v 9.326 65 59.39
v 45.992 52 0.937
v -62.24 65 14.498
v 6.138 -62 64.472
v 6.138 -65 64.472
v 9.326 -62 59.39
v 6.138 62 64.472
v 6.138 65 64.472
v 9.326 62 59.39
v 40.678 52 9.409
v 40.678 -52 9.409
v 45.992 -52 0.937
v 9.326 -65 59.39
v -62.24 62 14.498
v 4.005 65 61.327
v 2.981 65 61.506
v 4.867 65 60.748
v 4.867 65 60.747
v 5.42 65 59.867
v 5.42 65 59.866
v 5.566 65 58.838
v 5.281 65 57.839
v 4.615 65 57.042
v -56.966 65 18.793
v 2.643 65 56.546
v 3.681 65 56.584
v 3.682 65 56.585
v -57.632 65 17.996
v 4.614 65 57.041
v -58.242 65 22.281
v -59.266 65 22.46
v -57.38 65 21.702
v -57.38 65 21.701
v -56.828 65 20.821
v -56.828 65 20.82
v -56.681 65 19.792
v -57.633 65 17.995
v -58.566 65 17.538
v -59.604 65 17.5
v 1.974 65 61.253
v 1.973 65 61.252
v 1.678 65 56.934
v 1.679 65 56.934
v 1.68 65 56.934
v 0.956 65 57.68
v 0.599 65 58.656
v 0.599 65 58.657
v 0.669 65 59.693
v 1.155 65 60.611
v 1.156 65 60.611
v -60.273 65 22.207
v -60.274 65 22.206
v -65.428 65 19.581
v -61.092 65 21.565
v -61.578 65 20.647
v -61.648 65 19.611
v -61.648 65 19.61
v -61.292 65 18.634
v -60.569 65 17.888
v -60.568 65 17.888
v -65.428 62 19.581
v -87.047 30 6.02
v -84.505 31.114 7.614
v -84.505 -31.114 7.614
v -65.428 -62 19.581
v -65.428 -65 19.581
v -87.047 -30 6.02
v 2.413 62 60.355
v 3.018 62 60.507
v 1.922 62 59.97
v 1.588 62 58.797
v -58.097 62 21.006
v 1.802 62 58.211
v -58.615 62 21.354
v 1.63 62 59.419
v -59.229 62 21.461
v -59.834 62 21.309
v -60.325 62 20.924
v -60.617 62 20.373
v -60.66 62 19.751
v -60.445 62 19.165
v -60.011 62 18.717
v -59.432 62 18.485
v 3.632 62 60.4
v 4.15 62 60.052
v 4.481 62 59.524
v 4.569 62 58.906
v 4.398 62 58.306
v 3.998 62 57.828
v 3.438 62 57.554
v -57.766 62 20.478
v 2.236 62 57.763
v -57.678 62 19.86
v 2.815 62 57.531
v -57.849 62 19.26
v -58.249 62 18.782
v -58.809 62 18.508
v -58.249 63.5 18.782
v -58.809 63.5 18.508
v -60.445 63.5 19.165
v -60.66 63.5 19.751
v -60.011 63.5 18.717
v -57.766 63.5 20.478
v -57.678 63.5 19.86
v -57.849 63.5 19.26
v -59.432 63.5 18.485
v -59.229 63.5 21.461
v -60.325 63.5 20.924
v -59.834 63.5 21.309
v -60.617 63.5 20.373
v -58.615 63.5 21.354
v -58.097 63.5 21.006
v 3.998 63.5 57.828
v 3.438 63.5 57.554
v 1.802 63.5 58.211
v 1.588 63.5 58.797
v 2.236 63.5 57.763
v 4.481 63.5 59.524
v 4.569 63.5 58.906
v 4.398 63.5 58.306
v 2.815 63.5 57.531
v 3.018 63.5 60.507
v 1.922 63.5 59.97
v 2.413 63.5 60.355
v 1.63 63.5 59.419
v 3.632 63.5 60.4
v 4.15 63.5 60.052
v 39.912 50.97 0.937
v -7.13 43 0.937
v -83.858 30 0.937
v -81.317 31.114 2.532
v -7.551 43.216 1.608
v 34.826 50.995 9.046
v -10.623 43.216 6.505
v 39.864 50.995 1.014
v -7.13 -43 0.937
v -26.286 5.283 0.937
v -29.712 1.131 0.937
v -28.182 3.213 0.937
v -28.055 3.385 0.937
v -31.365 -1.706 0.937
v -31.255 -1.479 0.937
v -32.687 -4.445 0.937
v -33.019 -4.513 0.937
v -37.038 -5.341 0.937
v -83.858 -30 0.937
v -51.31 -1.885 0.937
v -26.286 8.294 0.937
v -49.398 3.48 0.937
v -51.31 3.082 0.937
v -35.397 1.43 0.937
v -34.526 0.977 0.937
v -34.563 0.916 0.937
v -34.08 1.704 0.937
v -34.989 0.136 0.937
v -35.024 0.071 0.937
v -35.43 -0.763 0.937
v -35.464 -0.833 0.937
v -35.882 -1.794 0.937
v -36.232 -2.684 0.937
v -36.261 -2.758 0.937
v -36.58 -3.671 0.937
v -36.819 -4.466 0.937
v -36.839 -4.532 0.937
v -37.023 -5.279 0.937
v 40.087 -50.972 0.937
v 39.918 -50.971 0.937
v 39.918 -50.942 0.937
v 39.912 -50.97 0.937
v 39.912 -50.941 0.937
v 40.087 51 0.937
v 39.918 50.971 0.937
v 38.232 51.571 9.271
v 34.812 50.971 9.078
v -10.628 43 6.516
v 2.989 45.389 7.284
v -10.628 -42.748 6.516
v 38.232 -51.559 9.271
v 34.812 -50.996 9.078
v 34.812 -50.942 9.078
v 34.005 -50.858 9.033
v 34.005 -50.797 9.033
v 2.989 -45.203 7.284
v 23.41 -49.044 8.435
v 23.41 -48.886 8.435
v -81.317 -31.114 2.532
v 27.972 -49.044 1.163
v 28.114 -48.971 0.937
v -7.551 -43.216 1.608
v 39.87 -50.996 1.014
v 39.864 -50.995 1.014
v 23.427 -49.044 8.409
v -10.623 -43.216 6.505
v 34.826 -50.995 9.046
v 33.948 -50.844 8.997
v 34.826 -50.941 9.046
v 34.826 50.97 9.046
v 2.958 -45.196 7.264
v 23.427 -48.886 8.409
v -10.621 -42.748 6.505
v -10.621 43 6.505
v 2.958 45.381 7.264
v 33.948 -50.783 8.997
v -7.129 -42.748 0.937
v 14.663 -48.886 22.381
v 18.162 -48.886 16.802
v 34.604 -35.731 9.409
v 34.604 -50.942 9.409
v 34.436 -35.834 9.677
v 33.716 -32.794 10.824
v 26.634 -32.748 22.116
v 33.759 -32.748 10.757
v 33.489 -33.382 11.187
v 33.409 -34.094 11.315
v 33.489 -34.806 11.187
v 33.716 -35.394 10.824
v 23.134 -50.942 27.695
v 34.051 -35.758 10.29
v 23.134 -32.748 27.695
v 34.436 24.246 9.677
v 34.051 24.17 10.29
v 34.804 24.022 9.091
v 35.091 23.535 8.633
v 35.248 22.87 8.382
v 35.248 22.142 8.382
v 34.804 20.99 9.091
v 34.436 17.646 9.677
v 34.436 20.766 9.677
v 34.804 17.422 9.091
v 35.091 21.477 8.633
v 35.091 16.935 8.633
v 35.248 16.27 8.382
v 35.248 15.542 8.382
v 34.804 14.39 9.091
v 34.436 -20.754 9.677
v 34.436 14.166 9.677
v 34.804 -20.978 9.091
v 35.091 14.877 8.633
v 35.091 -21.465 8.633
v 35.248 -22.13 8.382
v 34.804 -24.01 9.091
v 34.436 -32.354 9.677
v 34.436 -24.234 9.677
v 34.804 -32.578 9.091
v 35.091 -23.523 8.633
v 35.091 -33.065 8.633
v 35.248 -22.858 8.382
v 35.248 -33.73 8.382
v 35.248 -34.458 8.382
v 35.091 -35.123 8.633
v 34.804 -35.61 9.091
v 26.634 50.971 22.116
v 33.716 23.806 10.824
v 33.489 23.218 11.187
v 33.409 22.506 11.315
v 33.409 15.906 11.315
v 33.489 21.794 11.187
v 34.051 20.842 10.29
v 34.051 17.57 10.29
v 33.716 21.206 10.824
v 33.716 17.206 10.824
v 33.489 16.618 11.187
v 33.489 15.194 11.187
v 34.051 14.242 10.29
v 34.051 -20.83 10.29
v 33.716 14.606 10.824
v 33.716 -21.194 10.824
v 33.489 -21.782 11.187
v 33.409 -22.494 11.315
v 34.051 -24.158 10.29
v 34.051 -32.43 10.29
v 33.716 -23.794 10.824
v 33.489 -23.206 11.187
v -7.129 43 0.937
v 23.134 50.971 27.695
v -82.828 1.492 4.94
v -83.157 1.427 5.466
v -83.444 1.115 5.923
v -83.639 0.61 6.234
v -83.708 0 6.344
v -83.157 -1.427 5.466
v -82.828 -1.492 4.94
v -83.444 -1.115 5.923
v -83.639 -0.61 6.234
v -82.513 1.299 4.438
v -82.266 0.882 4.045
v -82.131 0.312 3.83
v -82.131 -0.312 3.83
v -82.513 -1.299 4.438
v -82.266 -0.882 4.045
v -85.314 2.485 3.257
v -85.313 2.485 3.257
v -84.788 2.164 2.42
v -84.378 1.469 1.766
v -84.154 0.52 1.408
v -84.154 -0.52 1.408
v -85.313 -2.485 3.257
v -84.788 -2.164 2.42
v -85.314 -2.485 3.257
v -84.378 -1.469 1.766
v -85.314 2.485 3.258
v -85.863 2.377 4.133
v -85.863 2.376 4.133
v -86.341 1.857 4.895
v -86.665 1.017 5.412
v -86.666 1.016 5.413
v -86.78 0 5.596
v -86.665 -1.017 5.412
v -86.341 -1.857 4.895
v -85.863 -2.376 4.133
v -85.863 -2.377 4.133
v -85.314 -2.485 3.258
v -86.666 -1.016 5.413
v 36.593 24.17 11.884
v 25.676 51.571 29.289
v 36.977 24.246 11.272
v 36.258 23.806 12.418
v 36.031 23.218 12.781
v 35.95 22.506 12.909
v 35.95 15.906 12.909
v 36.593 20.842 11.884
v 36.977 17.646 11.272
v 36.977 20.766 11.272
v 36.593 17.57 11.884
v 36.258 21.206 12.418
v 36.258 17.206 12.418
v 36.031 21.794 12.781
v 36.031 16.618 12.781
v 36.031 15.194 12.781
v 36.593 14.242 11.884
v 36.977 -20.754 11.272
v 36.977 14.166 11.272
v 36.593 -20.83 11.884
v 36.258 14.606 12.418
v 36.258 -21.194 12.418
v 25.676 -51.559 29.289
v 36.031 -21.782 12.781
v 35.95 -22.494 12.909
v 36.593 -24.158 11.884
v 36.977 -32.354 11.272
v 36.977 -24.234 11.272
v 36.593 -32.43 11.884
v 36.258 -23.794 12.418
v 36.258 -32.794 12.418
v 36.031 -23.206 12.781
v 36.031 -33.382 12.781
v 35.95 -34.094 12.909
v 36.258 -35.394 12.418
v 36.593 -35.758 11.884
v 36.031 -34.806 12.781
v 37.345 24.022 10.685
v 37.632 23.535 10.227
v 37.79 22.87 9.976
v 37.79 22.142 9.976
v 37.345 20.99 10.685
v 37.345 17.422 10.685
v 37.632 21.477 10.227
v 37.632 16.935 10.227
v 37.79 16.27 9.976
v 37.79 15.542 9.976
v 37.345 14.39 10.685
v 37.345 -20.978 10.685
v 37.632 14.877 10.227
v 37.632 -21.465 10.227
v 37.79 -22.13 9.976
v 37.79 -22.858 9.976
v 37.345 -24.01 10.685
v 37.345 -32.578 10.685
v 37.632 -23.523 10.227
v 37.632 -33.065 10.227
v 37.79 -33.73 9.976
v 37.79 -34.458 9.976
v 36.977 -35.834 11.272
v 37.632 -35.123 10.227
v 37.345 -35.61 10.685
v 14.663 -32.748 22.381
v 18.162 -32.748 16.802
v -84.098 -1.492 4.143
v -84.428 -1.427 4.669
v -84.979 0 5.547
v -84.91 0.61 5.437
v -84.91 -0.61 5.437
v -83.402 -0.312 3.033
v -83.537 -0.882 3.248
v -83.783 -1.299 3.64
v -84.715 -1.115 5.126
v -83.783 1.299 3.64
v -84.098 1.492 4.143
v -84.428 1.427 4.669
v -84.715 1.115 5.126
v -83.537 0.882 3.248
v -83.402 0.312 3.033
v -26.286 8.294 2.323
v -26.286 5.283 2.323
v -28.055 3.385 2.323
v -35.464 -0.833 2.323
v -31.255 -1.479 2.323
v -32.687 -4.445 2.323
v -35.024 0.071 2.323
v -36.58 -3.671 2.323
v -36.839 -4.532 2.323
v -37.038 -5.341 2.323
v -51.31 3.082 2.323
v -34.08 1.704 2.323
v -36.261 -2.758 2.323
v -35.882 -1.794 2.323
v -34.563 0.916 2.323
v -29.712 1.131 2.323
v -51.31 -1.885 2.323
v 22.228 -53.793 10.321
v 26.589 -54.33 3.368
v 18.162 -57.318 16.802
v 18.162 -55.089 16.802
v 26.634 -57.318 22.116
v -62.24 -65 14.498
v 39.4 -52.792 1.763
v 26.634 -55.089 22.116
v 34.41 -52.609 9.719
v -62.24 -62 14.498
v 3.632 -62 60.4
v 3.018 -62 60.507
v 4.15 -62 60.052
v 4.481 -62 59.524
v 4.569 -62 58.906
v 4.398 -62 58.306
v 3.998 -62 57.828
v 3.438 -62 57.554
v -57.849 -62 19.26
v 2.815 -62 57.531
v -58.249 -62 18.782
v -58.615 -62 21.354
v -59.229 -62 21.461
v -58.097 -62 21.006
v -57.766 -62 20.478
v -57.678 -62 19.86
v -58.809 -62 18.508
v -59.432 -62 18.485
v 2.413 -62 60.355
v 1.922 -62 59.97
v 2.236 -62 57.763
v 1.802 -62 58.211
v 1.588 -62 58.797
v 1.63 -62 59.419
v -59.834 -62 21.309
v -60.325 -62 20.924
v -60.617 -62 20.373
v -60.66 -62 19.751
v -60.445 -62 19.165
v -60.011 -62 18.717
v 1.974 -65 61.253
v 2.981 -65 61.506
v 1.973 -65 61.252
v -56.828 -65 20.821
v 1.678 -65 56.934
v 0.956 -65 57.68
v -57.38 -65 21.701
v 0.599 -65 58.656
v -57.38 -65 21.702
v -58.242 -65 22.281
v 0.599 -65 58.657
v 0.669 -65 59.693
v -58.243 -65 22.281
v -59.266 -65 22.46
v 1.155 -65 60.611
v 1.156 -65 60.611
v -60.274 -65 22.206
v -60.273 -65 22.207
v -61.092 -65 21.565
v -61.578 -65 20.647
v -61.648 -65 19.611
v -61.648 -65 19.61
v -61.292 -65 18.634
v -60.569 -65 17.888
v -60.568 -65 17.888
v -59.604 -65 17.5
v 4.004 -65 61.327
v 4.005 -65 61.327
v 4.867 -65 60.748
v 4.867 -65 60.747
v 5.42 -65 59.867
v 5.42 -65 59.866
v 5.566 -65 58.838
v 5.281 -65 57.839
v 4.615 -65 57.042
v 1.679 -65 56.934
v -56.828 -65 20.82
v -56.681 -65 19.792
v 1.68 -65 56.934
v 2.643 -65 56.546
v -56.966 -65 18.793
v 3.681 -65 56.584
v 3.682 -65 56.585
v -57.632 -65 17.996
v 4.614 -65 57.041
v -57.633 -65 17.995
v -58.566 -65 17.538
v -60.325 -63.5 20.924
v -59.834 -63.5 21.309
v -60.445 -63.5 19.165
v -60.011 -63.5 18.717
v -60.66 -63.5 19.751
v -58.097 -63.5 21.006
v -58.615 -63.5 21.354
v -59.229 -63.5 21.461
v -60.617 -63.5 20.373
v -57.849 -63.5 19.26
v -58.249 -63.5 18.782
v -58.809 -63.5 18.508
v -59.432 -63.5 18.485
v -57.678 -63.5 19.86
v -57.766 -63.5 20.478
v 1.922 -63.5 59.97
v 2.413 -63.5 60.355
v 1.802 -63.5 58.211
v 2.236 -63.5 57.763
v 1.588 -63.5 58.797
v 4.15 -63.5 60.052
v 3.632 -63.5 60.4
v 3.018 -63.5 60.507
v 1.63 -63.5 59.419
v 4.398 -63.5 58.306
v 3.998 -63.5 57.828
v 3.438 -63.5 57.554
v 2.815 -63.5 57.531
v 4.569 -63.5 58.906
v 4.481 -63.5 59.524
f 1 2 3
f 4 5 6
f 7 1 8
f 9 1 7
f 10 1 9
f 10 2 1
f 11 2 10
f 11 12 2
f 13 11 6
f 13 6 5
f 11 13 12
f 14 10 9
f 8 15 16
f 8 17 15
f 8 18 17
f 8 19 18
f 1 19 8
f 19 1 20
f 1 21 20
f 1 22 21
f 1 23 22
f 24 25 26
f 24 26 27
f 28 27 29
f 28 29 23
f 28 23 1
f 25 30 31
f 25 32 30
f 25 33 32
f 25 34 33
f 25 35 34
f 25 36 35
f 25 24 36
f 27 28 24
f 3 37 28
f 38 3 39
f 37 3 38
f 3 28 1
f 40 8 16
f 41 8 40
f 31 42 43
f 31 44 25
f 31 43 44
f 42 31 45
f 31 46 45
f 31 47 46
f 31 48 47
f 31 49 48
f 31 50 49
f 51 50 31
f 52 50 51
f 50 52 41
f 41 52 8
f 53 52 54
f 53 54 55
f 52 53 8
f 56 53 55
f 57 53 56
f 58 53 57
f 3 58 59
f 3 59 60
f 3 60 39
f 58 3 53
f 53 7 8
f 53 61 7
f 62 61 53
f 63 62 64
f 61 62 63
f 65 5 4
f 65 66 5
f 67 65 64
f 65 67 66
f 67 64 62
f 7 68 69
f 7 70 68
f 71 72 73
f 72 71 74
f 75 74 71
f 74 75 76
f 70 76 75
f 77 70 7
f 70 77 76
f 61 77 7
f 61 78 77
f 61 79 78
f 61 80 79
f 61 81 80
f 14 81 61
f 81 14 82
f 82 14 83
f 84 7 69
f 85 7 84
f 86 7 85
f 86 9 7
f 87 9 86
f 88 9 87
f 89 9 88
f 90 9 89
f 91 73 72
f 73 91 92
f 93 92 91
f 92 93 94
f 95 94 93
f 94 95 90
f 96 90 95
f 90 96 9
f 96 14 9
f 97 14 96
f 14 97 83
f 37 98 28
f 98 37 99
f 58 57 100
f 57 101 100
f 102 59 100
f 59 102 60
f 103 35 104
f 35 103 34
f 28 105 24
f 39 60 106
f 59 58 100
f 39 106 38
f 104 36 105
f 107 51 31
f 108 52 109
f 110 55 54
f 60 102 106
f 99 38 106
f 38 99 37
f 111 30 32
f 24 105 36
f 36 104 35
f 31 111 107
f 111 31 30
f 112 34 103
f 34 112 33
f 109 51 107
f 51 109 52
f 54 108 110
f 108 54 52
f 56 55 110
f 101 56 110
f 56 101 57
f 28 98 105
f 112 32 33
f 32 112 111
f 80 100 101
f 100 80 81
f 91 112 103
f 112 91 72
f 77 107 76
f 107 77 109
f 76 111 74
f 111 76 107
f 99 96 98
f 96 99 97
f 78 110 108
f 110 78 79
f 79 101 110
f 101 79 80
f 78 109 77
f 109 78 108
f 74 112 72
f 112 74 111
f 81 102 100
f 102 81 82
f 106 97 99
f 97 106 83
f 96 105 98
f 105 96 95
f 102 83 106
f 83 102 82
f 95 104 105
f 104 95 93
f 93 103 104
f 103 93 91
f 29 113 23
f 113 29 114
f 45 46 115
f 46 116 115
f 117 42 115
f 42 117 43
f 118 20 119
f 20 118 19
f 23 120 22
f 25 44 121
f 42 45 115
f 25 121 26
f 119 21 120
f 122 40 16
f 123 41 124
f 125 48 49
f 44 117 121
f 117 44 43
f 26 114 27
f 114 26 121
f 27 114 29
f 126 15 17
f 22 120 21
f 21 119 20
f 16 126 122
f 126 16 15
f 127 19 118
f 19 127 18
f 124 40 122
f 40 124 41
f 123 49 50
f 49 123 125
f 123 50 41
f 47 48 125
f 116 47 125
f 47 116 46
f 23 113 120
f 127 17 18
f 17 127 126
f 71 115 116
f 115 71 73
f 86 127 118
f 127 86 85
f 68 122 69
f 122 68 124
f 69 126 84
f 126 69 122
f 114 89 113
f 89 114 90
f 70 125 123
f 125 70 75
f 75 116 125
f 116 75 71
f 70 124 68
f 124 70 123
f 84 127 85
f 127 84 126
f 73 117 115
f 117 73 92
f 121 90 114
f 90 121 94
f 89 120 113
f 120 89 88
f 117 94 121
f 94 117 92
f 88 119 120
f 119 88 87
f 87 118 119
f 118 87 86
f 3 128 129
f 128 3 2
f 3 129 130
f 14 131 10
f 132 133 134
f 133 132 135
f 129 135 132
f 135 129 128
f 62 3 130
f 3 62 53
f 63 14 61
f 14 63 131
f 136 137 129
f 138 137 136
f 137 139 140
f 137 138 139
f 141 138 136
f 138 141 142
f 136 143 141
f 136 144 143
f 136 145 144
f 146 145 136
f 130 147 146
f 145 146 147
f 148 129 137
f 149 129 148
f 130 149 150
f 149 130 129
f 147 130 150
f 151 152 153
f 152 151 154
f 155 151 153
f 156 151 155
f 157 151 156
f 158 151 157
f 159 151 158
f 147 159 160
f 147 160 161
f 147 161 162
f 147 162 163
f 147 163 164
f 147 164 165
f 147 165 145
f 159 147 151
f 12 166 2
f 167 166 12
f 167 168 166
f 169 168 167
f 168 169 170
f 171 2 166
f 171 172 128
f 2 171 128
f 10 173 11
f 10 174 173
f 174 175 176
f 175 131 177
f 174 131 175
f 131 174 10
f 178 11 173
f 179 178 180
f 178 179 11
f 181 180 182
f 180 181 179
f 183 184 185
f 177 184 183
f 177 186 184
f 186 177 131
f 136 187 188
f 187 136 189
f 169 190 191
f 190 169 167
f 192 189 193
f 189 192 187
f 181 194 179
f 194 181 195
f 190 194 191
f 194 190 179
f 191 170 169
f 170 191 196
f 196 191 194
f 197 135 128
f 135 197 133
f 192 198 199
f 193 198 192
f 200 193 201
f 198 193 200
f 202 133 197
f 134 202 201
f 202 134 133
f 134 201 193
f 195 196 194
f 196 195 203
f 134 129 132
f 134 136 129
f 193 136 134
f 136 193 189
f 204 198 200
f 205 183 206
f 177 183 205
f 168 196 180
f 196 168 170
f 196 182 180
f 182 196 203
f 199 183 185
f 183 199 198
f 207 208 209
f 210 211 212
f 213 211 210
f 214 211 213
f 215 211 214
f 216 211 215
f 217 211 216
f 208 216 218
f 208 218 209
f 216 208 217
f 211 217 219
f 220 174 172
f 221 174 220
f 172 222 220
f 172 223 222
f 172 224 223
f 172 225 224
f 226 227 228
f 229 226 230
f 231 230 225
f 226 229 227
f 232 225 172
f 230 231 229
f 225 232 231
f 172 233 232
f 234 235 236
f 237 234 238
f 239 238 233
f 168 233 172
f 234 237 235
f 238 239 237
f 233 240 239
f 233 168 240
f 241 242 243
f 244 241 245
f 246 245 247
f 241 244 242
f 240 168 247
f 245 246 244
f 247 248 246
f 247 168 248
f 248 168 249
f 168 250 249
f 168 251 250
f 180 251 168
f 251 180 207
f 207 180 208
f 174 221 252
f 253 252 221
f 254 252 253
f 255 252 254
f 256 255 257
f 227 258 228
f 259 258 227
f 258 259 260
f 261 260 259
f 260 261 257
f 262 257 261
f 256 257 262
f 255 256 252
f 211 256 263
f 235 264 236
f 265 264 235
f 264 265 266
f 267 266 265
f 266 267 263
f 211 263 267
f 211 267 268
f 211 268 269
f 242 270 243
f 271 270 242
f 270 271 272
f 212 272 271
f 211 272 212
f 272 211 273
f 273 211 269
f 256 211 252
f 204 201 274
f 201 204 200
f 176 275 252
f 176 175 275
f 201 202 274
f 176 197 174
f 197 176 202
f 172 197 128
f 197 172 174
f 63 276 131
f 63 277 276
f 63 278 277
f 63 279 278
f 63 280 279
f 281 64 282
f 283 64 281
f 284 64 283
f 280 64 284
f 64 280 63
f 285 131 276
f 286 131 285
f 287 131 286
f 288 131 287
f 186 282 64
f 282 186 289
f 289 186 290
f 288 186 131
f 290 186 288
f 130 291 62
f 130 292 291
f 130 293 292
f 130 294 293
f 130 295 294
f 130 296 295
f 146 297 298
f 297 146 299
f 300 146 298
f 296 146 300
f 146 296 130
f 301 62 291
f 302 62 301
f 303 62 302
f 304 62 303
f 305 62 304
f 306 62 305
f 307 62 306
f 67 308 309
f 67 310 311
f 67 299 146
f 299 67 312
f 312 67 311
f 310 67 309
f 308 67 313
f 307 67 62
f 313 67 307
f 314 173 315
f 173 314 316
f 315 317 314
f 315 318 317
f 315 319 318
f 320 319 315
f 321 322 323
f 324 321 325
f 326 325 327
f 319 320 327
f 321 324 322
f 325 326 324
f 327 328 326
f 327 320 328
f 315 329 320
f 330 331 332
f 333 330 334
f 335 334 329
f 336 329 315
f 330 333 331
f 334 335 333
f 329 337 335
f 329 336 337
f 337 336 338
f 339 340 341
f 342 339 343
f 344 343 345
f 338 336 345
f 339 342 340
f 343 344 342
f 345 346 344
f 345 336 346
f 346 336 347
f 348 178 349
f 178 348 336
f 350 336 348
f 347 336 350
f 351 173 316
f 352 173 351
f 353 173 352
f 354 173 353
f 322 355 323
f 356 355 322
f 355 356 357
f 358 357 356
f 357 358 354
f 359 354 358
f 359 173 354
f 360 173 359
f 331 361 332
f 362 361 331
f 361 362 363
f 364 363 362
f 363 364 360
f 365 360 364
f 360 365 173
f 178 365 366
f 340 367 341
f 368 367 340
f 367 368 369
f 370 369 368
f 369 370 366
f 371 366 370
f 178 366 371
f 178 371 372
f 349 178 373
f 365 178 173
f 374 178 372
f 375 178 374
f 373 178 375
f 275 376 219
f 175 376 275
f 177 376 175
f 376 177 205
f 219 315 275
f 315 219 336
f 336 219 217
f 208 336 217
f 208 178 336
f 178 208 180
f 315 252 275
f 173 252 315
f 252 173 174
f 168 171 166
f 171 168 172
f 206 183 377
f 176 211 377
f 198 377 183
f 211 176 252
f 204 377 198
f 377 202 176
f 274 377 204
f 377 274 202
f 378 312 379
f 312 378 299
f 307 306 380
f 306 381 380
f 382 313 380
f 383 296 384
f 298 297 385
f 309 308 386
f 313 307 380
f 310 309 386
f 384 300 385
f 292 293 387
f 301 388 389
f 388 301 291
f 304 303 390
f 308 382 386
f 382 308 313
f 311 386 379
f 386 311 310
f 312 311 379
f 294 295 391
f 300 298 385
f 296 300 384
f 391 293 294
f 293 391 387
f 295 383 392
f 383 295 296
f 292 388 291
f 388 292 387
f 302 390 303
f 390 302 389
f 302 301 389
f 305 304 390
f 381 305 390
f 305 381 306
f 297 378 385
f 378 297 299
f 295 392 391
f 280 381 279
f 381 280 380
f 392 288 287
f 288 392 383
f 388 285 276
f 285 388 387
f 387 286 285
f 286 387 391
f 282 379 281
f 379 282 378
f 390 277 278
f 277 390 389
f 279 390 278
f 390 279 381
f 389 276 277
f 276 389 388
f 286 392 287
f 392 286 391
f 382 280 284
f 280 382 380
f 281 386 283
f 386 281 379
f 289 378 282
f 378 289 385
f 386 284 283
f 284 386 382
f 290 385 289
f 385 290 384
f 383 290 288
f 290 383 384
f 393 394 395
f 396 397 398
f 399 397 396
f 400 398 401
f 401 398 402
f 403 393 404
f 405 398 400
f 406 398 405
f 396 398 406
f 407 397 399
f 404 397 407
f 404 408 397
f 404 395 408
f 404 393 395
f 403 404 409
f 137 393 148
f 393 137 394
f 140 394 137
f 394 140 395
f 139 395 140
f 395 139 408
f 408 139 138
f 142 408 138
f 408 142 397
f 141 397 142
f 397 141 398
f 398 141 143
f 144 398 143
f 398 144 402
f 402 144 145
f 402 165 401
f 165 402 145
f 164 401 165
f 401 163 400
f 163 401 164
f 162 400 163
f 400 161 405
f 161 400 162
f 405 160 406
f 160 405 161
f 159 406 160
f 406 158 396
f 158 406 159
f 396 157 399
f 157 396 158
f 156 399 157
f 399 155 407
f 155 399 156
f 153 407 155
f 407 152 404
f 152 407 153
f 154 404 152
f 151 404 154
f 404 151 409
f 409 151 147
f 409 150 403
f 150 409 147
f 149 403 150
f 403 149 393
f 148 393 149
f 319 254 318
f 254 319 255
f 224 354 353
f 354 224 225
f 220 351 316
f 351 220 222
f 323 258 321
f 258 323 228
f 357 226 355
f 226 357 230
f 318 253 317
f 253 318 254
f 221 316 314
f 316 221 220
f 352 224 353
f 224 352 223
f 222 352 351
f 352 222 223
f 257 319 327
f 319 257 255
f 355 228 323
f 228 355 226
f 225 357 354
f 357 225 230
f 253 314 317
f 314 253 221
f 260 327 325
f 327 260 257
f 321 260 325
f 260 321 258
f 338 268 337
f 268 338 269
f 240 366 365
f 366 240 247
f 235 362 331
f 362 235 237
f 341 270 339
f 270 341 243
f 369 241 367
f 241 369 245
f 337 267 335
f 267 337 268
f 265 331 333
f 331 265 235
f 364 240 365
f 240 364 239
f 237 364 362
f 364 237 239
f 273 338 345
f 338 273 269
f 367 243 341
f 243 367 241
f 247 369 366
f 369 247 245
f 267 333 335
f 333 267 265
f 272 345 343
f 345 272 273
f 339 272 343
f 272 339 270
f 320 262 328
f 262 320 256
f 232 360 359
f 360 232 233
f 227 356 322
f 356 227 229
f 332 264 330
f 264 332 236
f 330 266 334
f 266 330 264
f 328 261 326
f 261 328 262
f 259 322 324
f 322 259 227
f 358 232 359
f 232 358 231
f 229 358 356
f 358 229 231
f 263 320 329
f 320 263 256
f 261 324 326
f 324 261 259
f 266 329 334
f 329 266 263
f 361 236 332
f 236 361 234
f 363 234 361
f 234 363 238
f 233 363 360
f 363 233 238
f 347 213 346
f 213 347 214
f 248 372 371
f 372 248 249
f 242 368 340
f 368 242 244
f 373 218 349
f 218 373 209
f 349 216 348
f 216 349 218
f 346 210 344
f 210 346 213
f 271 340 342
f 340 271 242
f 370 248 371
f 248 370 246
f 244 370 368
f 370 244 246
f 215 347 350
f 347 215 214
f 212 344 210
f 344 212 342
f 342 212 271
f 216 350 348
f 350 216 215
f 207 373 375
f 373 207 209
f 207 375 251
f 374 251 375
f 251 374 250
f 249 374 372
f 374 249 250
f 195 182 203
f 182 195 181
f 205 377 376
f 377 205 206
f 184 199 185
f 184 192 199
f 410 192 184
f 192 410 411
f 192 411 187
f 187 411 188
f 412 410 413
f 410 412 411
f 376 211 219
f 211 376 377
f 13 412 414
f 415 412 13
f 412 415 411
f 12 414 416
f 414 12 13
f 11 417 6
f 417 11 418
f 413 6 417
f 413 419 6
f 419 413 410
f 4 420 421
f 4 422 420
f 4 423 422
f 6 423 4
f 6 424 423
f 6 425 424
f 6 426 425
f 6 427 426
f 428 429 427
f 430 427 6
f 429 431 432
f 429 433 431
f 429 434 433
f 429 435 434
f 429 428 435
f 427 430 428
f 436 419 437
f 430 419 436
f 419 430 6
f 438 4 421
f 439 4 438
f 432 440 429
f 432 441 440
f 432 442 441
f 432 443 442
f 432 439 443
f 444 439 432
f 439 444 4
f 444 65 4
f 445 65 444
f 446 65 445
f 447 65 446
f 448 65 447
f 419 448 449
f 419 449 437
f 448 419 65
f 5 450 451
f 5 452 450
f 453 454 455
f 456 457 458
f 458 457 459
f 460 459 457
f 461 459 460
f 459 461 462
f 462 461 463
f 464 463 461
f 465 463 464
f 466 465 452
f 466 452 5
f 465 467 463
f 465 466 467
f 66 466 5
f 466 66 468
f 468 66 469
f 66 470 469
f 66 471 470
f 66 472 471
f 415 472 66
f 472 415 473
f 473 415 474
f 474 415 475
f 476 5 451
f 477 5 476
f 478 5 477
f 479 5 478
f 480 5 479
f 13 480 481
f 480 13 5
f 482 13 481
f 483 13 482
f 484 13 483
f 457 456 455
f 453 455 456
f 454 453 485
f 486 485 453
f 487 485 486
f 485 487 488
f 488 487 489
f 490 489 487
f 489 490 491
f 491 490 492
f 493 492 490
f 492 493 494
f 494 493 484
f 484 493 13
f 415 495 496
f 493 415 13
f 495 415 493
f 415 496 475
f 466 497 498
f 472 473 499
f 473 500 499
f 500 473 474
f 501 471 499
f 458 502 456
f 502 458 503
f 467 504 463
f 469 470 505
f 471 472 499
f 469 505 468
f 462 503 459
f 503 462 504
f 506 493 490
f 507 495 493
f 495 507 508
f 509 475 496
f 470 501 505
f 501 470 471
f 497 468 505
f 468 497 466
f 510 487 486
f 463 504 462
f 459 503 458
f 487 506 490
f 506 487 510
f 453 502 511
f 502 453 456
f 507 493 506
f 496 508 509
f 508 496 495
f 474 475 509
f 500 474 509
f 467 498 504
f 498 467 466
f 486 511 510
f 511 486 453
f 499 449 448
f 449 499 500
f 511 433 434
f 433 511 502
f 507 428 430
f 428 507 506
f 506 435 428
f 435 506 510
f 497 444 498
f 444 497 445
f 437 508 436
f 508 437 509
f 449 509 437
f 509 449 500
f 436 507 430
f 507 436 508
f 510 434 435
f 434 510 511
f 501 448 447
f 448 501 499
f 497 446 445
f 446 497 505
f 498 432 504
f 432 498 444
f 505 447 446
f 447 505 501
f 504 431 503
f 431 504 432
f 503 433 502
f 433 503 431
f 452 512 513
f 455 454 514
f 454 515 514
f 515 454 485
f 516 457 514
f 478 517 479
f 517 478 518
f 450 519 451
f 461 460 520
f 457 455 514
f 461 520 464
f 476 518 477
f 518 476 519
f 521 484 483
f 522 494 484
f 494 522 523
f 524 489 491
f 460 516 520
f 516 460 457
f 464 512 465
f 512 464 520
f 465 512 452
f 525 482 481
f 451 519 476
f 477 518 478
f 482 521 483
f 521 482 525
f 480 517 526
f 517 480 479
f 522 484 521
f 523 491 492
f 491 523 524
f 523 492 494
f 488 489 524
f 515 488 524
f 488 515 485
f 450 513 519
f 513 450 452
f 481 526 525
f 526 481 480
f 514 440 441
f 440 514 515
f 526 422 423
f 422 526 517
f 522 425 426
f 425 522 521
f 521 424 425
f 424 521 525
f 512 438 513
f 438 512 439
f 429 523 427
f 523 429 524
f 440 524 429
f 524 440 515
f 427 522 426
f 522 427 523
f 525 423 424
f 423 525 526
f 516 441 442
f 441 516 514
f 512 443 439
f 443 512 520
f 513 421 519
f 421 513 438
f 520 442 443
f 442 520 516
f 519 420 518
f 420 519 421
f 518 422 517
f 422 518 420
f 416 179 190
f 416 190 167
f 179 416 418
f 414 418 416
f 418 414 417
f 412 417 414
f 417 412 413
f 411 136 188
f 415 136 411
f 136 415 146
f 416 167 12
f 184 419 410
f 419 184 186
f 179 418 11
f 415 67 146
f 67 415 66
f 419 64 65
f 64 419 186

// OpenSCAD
$include_rfcbls = true;
include <racecar_front_cover_back_left_side.scad>

$include_rfcbrs = true;
include <racecar_front_cover_back_right_side.scad>

if(_print_config) {
    translate([0,0,68]) {
        rfcw_rotation_y = 180+atan(rfcc_top_xz_slope);
        rotate([0,rfcw_rotation_y,0]) {
            RacecarFrontCoverWhole();    
        }
    }
} else {
    RacecarFrontCoverWhole(); 
}

module RacecarFrontCoverWhole() {
    
    translate([rff_wrt_rcb_x_offset, rff_wrt_rcb_y_offset, rff_wrt_rcb_z_offset]) {
        RacecarFrontCoverBackLeftSide();
    }
    translate([rff_wrt_rcb_x_offset, rff_wrt_rcb_y_offset, rff_wrt_rcb_z_offset]) {
        RacecarFrontCoverFrontLeftSide();
    }    
    translate([rff_wrt_rcb_x_offset, rff_wrt_rcb_y_offset, rff_wrt_rcb_z_offset]) {
        RacecarFrontCoverCenter();
    }  
    translate([rff_wrt_rcb_x_offset, rff_wrt_rcb_y_offset, rff_wrt_rcb_z_offset]) {
        RacecarFrontCoverBackRightSide();
    }
    translate([rff_wrt_rcb_x_offset, rff_wrt_rcb_y_offset, rff_wrt_rcb_z_offset]) {
        RacecarFrontCoverFrontRightSide();
    }     
        
    
}
